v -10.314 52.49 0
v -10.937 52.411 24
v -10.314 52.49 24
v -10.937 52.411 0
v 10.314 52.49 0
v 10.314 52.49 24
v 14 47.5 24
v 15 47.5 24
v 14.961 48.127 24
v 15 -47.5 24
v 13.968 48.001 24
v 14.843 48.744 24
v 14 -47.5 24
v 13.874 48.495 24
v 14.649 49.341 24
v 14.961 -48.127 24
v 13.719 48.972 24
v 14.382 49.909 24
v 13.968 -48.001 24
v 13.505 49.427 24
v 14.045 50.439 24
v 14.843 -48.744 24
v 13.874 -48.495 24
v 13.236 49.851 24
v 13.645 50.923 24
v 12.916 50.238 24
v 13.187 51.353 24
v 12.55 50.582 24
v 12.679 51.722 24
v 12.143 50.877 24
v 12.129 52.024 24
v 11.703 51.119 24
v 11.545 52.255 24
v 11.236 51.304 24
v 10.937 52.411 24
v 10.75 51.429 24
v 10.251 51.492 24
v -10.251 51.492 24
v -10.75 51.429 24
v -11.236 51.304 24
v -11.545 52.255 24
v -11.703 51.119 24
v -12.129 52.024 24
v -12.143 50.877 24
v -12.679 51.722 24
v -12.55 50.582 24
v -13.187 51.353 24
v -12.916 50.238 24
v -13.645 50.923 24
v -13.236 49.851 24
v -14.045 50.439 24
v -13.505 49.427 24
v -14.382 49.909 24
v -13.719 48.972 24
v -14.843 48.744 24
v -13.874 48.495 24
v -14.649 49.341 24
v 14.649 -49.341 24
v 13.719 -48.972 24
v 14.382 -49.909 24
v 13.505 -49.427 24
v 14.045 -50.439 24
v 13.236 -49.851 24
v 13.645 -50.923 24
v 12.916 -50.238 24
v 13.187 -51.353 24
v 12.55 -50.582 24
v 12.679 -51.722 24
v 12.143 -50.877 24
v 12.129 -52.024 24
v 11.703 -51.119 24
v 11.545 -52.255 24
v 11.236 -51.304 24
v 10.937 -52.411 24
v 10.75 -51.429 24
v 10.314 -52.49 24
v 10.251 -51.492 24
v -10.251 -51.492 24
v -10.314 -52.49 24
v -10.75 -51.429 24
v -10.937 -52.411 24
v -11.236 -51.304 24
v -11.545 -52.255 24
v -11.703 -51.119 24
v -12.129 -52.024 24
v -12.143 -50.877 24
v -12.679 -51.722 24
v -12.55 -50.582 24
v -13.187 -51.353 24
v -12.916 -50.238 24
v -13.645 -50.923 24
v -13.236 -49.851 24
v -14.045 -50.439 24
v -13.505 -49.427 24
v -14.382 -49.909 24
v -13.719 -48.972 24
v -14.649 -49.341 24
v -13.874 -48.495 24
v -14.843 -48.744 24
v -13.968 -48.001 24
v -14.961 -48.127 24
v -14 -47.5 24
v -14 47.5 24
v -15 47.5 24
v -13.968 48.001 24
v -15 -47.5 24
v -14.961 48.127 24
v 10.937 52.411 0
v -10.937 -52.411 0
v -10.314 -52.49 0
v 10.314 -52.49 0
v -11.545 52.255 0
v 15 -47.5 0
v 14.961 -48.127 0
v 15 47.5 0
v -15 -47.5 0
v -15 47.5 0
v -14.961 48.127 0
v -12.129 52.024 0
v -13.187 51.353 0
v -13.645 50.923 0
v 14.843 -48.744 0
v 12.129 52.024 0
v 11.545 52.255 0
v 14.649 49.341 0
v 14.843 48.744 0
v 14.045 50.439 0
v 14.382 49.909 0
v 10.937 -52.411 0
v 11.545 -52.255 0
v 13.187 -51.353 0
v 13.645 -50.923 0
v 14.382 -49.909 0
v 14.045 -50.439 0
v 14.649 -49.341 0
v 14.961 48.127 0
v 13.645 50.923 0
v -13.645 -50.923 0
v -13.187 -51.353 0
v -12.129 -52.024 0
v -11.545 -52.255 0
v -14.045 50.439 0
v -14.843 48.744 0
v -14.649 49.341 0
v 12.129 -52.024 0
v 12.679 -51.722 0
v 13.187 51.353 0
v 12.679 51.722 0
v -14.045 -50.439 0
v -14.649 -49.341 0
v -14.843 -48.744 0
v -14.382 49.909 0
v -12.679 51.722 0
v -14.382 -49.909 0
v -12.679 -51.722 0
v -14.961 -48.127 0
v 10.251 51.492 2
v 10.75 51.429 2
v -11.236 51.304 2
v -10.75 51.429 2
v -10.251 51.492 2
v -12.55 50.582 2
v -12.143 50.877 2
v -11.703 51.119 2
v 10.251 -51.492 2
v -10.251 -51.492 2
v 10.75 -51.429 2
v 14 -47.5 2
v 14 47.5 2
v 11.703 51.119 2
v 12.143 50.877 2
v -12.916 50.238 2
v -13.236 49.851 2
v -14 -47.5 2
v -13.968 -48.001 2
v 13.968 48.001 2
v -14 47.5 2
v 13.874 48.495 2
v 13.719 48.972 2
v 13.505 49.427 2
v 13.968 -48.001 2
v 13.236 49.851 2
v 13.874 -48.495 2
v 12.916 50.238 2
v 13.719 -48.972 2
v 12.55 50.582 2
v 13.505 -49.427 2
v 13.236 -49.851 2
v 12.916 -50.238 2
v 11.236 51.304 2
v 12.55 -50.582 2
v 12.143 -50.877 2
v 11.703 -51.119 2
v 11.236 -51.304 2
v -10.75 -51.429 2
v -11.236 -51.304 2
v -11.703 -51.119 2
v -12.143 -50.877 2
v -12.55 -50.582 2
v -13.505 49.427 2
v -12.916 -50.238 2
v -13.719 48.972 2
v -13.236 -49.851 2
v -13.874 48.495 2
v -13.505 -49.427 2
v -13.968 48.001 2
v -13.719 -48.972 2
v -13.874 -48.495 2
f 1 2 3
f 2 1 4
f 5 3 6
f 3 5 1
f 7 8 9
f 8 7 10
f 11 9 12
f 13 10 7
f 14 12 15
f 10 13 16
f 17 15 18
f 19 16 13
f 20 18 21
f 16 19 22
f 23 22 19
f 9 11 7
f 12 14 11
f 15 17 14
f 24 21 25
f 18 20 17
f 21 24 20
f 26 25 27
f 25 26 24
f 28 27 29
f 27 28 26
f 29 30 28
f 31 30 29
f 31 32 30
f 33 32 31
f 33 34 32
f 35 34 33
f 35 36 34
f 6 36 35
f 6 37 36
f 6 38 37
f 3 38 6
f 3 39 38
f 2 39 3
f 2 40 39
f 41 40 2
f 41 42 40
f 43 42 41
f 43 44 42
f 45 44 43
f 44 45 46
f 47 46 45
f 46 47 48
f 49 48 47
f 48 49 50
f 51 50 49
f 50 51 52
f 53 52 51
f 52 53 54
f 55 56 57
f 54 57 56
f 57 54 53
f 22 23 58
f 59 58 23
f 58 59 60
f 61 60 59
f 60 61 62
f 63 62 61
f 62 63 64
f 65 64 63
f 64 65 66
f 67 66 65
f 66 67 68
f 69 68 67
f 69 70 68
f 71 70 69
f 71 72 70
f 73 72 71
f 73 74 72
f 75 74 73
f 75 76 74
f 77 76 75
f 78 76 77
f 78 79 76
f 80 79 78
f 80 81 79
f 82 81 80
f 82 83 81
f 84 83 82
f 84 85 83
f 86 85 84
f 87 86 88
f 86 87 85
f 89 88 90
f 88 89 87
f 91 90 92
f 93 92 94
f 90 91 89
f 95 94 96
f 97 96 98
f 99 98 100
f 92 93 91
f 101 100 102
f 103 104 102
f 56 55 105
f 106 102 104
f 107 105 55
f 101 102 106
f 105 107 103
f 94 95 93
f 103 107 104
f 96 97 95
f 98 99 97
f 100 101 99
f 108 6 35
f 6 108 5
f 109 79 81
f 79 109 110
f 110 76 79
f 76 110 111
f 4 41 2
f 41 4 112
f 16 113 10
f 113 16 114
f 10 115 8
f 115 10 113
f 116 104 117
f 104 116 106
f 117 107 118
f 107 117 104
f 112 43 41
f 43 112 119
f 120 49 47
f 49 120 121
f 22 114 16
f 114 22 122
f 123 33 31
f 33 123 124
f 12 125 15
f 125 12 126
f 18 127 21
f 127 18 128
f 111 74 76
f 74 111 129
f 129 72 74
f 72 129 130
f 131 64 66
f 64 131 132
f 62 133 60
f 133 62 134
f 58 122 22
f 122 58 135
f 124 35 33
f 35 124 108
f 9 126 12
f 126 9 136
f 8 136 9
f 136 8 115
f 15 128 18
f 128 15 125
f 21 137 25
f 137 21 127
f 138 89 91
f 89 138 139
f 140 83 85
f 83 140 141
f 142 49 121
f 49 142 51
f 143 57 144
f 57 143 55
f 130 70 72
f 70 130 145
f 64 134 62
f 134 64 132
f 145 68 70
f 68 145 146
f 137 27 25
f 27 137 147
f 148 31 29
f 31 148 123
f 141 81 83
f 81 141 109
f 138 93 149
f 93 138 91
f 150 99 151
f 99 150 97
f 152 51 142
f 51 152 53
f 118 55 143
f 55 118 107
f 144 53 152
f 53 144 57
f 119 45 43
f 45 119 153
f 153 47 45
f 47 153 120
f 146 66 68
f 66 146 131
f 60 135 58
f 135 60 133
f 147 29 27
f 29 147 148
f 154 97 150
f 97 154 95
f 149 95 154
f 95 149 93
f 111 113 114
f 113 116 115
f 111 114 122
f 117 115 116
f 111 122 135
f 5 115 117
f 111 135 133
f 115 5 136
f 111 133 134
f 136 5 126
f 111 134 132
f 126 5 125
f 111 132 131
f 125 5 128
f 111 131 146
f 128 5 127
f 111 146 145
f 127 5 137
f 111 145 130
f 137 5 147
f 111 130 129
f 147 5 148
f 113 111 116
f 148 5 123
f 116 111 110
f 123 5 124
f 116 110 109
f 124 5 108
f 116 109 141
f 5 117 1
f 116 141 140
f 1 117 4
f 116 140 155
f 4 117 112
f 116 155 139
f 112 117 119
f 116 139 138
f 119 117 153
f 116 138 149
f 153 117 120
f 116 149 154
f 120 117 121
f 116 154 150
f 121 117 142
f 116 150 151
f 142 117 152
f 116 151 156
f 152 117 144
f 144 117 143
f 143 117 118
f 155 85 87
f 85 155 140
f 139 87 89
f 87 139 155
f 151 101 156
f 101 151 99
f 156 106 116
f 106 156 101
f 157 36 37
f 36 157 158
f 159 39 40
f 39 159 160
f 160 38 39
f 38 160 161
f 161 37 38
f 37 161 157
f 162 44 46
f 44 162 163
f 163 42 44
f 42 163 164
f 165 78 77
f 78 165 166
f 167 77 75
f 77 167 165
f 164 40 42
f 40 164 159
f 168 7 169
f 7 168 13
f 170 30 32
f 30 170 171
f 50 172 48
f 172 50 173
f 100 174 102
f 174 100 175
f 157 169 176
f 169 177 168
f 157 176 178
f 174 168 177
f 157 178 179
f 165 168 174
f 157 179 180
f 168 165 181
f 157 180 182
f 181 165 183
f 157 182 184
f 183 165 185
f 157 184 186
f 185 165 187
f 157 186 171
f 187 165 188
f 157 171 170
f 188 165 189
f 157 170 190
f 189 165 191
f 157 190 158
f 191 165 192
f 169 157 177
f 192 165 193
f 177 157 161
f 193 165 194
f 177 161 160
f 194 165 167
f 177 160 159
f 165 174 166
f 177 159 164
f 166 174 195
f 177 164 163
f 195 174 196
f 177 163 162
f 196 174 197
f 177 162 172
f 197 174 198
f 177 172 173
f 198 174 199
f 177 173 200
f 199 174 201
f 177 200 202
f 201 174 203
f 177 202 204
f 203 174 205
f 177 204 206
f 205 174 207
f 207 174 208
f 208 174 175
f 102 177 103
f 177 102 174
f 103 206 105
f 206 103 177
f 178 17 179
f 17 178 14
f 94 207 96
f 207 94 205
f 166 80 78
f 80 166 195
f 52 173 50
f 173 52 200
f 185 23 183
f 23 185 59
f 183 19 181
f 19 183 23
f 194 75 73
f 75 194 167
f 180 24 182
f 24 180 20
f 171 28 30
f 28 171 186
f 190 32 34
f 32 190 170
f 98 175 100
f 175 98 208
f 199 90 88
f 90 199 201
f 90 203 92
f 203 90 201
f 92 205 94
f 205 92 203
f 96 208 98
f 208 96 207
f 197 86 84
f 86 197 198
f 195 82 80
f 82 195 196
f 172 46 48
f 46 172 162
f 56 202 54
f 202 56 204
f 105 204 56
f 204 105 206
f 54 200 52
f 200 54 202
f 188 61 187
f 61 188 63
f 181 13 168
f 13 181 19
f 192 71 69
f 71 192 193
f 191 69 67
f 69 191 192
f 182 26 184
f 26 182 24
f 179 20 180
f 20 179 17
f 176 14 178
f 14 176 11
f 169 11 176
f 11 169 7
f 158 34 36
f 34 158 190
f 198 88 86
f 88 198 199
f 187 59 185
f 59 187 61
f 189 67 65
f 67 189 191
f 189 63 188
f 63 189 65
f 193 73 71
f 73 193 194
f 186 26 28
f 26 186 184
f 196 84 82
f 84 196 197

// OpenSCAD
$fn = 50;


difference() {
	union() {
		hull() {
			translate(v = [-10.0000000000, 47.5000000000, 0]) {
				cylinder(h = 24, r = 5);
			}
			translate(v = [10.0000000000, 47.5000000000, 0]) {
				cylinder(h = 24, r = 5);
			}
			translate(v = [-10.0000000000, -47.5000000000, 0]) {
				cylinder(h = 24, r = 5);
			}
			translate(v = [10.0000000000, -47.5000000000, 0]) {
				cylinder(h = 24, r = 5);
			}
		}
	}
	union() {
		translate(v = [0, 0, 2]) {
			hull() {
				translate(v = [-10.0000000000, 47.5000000000, 0]) {
					cylinder(h = 22, r = 4);
				}
				translate(v = [10.0000000000, 47.5000000000, 0]) {
					cylinder(h = 22, r = 4);
				}
				translate(v = [-10.0000000000, -47.5000000000, 0]) {
					cylinder(h = 22, r = 4);
				}
				translate(v = [10.0000000000, -47.5000000000, 0]) {
					cylinder(h = 22, r = 4);
				}
			}
		}
	}
}
